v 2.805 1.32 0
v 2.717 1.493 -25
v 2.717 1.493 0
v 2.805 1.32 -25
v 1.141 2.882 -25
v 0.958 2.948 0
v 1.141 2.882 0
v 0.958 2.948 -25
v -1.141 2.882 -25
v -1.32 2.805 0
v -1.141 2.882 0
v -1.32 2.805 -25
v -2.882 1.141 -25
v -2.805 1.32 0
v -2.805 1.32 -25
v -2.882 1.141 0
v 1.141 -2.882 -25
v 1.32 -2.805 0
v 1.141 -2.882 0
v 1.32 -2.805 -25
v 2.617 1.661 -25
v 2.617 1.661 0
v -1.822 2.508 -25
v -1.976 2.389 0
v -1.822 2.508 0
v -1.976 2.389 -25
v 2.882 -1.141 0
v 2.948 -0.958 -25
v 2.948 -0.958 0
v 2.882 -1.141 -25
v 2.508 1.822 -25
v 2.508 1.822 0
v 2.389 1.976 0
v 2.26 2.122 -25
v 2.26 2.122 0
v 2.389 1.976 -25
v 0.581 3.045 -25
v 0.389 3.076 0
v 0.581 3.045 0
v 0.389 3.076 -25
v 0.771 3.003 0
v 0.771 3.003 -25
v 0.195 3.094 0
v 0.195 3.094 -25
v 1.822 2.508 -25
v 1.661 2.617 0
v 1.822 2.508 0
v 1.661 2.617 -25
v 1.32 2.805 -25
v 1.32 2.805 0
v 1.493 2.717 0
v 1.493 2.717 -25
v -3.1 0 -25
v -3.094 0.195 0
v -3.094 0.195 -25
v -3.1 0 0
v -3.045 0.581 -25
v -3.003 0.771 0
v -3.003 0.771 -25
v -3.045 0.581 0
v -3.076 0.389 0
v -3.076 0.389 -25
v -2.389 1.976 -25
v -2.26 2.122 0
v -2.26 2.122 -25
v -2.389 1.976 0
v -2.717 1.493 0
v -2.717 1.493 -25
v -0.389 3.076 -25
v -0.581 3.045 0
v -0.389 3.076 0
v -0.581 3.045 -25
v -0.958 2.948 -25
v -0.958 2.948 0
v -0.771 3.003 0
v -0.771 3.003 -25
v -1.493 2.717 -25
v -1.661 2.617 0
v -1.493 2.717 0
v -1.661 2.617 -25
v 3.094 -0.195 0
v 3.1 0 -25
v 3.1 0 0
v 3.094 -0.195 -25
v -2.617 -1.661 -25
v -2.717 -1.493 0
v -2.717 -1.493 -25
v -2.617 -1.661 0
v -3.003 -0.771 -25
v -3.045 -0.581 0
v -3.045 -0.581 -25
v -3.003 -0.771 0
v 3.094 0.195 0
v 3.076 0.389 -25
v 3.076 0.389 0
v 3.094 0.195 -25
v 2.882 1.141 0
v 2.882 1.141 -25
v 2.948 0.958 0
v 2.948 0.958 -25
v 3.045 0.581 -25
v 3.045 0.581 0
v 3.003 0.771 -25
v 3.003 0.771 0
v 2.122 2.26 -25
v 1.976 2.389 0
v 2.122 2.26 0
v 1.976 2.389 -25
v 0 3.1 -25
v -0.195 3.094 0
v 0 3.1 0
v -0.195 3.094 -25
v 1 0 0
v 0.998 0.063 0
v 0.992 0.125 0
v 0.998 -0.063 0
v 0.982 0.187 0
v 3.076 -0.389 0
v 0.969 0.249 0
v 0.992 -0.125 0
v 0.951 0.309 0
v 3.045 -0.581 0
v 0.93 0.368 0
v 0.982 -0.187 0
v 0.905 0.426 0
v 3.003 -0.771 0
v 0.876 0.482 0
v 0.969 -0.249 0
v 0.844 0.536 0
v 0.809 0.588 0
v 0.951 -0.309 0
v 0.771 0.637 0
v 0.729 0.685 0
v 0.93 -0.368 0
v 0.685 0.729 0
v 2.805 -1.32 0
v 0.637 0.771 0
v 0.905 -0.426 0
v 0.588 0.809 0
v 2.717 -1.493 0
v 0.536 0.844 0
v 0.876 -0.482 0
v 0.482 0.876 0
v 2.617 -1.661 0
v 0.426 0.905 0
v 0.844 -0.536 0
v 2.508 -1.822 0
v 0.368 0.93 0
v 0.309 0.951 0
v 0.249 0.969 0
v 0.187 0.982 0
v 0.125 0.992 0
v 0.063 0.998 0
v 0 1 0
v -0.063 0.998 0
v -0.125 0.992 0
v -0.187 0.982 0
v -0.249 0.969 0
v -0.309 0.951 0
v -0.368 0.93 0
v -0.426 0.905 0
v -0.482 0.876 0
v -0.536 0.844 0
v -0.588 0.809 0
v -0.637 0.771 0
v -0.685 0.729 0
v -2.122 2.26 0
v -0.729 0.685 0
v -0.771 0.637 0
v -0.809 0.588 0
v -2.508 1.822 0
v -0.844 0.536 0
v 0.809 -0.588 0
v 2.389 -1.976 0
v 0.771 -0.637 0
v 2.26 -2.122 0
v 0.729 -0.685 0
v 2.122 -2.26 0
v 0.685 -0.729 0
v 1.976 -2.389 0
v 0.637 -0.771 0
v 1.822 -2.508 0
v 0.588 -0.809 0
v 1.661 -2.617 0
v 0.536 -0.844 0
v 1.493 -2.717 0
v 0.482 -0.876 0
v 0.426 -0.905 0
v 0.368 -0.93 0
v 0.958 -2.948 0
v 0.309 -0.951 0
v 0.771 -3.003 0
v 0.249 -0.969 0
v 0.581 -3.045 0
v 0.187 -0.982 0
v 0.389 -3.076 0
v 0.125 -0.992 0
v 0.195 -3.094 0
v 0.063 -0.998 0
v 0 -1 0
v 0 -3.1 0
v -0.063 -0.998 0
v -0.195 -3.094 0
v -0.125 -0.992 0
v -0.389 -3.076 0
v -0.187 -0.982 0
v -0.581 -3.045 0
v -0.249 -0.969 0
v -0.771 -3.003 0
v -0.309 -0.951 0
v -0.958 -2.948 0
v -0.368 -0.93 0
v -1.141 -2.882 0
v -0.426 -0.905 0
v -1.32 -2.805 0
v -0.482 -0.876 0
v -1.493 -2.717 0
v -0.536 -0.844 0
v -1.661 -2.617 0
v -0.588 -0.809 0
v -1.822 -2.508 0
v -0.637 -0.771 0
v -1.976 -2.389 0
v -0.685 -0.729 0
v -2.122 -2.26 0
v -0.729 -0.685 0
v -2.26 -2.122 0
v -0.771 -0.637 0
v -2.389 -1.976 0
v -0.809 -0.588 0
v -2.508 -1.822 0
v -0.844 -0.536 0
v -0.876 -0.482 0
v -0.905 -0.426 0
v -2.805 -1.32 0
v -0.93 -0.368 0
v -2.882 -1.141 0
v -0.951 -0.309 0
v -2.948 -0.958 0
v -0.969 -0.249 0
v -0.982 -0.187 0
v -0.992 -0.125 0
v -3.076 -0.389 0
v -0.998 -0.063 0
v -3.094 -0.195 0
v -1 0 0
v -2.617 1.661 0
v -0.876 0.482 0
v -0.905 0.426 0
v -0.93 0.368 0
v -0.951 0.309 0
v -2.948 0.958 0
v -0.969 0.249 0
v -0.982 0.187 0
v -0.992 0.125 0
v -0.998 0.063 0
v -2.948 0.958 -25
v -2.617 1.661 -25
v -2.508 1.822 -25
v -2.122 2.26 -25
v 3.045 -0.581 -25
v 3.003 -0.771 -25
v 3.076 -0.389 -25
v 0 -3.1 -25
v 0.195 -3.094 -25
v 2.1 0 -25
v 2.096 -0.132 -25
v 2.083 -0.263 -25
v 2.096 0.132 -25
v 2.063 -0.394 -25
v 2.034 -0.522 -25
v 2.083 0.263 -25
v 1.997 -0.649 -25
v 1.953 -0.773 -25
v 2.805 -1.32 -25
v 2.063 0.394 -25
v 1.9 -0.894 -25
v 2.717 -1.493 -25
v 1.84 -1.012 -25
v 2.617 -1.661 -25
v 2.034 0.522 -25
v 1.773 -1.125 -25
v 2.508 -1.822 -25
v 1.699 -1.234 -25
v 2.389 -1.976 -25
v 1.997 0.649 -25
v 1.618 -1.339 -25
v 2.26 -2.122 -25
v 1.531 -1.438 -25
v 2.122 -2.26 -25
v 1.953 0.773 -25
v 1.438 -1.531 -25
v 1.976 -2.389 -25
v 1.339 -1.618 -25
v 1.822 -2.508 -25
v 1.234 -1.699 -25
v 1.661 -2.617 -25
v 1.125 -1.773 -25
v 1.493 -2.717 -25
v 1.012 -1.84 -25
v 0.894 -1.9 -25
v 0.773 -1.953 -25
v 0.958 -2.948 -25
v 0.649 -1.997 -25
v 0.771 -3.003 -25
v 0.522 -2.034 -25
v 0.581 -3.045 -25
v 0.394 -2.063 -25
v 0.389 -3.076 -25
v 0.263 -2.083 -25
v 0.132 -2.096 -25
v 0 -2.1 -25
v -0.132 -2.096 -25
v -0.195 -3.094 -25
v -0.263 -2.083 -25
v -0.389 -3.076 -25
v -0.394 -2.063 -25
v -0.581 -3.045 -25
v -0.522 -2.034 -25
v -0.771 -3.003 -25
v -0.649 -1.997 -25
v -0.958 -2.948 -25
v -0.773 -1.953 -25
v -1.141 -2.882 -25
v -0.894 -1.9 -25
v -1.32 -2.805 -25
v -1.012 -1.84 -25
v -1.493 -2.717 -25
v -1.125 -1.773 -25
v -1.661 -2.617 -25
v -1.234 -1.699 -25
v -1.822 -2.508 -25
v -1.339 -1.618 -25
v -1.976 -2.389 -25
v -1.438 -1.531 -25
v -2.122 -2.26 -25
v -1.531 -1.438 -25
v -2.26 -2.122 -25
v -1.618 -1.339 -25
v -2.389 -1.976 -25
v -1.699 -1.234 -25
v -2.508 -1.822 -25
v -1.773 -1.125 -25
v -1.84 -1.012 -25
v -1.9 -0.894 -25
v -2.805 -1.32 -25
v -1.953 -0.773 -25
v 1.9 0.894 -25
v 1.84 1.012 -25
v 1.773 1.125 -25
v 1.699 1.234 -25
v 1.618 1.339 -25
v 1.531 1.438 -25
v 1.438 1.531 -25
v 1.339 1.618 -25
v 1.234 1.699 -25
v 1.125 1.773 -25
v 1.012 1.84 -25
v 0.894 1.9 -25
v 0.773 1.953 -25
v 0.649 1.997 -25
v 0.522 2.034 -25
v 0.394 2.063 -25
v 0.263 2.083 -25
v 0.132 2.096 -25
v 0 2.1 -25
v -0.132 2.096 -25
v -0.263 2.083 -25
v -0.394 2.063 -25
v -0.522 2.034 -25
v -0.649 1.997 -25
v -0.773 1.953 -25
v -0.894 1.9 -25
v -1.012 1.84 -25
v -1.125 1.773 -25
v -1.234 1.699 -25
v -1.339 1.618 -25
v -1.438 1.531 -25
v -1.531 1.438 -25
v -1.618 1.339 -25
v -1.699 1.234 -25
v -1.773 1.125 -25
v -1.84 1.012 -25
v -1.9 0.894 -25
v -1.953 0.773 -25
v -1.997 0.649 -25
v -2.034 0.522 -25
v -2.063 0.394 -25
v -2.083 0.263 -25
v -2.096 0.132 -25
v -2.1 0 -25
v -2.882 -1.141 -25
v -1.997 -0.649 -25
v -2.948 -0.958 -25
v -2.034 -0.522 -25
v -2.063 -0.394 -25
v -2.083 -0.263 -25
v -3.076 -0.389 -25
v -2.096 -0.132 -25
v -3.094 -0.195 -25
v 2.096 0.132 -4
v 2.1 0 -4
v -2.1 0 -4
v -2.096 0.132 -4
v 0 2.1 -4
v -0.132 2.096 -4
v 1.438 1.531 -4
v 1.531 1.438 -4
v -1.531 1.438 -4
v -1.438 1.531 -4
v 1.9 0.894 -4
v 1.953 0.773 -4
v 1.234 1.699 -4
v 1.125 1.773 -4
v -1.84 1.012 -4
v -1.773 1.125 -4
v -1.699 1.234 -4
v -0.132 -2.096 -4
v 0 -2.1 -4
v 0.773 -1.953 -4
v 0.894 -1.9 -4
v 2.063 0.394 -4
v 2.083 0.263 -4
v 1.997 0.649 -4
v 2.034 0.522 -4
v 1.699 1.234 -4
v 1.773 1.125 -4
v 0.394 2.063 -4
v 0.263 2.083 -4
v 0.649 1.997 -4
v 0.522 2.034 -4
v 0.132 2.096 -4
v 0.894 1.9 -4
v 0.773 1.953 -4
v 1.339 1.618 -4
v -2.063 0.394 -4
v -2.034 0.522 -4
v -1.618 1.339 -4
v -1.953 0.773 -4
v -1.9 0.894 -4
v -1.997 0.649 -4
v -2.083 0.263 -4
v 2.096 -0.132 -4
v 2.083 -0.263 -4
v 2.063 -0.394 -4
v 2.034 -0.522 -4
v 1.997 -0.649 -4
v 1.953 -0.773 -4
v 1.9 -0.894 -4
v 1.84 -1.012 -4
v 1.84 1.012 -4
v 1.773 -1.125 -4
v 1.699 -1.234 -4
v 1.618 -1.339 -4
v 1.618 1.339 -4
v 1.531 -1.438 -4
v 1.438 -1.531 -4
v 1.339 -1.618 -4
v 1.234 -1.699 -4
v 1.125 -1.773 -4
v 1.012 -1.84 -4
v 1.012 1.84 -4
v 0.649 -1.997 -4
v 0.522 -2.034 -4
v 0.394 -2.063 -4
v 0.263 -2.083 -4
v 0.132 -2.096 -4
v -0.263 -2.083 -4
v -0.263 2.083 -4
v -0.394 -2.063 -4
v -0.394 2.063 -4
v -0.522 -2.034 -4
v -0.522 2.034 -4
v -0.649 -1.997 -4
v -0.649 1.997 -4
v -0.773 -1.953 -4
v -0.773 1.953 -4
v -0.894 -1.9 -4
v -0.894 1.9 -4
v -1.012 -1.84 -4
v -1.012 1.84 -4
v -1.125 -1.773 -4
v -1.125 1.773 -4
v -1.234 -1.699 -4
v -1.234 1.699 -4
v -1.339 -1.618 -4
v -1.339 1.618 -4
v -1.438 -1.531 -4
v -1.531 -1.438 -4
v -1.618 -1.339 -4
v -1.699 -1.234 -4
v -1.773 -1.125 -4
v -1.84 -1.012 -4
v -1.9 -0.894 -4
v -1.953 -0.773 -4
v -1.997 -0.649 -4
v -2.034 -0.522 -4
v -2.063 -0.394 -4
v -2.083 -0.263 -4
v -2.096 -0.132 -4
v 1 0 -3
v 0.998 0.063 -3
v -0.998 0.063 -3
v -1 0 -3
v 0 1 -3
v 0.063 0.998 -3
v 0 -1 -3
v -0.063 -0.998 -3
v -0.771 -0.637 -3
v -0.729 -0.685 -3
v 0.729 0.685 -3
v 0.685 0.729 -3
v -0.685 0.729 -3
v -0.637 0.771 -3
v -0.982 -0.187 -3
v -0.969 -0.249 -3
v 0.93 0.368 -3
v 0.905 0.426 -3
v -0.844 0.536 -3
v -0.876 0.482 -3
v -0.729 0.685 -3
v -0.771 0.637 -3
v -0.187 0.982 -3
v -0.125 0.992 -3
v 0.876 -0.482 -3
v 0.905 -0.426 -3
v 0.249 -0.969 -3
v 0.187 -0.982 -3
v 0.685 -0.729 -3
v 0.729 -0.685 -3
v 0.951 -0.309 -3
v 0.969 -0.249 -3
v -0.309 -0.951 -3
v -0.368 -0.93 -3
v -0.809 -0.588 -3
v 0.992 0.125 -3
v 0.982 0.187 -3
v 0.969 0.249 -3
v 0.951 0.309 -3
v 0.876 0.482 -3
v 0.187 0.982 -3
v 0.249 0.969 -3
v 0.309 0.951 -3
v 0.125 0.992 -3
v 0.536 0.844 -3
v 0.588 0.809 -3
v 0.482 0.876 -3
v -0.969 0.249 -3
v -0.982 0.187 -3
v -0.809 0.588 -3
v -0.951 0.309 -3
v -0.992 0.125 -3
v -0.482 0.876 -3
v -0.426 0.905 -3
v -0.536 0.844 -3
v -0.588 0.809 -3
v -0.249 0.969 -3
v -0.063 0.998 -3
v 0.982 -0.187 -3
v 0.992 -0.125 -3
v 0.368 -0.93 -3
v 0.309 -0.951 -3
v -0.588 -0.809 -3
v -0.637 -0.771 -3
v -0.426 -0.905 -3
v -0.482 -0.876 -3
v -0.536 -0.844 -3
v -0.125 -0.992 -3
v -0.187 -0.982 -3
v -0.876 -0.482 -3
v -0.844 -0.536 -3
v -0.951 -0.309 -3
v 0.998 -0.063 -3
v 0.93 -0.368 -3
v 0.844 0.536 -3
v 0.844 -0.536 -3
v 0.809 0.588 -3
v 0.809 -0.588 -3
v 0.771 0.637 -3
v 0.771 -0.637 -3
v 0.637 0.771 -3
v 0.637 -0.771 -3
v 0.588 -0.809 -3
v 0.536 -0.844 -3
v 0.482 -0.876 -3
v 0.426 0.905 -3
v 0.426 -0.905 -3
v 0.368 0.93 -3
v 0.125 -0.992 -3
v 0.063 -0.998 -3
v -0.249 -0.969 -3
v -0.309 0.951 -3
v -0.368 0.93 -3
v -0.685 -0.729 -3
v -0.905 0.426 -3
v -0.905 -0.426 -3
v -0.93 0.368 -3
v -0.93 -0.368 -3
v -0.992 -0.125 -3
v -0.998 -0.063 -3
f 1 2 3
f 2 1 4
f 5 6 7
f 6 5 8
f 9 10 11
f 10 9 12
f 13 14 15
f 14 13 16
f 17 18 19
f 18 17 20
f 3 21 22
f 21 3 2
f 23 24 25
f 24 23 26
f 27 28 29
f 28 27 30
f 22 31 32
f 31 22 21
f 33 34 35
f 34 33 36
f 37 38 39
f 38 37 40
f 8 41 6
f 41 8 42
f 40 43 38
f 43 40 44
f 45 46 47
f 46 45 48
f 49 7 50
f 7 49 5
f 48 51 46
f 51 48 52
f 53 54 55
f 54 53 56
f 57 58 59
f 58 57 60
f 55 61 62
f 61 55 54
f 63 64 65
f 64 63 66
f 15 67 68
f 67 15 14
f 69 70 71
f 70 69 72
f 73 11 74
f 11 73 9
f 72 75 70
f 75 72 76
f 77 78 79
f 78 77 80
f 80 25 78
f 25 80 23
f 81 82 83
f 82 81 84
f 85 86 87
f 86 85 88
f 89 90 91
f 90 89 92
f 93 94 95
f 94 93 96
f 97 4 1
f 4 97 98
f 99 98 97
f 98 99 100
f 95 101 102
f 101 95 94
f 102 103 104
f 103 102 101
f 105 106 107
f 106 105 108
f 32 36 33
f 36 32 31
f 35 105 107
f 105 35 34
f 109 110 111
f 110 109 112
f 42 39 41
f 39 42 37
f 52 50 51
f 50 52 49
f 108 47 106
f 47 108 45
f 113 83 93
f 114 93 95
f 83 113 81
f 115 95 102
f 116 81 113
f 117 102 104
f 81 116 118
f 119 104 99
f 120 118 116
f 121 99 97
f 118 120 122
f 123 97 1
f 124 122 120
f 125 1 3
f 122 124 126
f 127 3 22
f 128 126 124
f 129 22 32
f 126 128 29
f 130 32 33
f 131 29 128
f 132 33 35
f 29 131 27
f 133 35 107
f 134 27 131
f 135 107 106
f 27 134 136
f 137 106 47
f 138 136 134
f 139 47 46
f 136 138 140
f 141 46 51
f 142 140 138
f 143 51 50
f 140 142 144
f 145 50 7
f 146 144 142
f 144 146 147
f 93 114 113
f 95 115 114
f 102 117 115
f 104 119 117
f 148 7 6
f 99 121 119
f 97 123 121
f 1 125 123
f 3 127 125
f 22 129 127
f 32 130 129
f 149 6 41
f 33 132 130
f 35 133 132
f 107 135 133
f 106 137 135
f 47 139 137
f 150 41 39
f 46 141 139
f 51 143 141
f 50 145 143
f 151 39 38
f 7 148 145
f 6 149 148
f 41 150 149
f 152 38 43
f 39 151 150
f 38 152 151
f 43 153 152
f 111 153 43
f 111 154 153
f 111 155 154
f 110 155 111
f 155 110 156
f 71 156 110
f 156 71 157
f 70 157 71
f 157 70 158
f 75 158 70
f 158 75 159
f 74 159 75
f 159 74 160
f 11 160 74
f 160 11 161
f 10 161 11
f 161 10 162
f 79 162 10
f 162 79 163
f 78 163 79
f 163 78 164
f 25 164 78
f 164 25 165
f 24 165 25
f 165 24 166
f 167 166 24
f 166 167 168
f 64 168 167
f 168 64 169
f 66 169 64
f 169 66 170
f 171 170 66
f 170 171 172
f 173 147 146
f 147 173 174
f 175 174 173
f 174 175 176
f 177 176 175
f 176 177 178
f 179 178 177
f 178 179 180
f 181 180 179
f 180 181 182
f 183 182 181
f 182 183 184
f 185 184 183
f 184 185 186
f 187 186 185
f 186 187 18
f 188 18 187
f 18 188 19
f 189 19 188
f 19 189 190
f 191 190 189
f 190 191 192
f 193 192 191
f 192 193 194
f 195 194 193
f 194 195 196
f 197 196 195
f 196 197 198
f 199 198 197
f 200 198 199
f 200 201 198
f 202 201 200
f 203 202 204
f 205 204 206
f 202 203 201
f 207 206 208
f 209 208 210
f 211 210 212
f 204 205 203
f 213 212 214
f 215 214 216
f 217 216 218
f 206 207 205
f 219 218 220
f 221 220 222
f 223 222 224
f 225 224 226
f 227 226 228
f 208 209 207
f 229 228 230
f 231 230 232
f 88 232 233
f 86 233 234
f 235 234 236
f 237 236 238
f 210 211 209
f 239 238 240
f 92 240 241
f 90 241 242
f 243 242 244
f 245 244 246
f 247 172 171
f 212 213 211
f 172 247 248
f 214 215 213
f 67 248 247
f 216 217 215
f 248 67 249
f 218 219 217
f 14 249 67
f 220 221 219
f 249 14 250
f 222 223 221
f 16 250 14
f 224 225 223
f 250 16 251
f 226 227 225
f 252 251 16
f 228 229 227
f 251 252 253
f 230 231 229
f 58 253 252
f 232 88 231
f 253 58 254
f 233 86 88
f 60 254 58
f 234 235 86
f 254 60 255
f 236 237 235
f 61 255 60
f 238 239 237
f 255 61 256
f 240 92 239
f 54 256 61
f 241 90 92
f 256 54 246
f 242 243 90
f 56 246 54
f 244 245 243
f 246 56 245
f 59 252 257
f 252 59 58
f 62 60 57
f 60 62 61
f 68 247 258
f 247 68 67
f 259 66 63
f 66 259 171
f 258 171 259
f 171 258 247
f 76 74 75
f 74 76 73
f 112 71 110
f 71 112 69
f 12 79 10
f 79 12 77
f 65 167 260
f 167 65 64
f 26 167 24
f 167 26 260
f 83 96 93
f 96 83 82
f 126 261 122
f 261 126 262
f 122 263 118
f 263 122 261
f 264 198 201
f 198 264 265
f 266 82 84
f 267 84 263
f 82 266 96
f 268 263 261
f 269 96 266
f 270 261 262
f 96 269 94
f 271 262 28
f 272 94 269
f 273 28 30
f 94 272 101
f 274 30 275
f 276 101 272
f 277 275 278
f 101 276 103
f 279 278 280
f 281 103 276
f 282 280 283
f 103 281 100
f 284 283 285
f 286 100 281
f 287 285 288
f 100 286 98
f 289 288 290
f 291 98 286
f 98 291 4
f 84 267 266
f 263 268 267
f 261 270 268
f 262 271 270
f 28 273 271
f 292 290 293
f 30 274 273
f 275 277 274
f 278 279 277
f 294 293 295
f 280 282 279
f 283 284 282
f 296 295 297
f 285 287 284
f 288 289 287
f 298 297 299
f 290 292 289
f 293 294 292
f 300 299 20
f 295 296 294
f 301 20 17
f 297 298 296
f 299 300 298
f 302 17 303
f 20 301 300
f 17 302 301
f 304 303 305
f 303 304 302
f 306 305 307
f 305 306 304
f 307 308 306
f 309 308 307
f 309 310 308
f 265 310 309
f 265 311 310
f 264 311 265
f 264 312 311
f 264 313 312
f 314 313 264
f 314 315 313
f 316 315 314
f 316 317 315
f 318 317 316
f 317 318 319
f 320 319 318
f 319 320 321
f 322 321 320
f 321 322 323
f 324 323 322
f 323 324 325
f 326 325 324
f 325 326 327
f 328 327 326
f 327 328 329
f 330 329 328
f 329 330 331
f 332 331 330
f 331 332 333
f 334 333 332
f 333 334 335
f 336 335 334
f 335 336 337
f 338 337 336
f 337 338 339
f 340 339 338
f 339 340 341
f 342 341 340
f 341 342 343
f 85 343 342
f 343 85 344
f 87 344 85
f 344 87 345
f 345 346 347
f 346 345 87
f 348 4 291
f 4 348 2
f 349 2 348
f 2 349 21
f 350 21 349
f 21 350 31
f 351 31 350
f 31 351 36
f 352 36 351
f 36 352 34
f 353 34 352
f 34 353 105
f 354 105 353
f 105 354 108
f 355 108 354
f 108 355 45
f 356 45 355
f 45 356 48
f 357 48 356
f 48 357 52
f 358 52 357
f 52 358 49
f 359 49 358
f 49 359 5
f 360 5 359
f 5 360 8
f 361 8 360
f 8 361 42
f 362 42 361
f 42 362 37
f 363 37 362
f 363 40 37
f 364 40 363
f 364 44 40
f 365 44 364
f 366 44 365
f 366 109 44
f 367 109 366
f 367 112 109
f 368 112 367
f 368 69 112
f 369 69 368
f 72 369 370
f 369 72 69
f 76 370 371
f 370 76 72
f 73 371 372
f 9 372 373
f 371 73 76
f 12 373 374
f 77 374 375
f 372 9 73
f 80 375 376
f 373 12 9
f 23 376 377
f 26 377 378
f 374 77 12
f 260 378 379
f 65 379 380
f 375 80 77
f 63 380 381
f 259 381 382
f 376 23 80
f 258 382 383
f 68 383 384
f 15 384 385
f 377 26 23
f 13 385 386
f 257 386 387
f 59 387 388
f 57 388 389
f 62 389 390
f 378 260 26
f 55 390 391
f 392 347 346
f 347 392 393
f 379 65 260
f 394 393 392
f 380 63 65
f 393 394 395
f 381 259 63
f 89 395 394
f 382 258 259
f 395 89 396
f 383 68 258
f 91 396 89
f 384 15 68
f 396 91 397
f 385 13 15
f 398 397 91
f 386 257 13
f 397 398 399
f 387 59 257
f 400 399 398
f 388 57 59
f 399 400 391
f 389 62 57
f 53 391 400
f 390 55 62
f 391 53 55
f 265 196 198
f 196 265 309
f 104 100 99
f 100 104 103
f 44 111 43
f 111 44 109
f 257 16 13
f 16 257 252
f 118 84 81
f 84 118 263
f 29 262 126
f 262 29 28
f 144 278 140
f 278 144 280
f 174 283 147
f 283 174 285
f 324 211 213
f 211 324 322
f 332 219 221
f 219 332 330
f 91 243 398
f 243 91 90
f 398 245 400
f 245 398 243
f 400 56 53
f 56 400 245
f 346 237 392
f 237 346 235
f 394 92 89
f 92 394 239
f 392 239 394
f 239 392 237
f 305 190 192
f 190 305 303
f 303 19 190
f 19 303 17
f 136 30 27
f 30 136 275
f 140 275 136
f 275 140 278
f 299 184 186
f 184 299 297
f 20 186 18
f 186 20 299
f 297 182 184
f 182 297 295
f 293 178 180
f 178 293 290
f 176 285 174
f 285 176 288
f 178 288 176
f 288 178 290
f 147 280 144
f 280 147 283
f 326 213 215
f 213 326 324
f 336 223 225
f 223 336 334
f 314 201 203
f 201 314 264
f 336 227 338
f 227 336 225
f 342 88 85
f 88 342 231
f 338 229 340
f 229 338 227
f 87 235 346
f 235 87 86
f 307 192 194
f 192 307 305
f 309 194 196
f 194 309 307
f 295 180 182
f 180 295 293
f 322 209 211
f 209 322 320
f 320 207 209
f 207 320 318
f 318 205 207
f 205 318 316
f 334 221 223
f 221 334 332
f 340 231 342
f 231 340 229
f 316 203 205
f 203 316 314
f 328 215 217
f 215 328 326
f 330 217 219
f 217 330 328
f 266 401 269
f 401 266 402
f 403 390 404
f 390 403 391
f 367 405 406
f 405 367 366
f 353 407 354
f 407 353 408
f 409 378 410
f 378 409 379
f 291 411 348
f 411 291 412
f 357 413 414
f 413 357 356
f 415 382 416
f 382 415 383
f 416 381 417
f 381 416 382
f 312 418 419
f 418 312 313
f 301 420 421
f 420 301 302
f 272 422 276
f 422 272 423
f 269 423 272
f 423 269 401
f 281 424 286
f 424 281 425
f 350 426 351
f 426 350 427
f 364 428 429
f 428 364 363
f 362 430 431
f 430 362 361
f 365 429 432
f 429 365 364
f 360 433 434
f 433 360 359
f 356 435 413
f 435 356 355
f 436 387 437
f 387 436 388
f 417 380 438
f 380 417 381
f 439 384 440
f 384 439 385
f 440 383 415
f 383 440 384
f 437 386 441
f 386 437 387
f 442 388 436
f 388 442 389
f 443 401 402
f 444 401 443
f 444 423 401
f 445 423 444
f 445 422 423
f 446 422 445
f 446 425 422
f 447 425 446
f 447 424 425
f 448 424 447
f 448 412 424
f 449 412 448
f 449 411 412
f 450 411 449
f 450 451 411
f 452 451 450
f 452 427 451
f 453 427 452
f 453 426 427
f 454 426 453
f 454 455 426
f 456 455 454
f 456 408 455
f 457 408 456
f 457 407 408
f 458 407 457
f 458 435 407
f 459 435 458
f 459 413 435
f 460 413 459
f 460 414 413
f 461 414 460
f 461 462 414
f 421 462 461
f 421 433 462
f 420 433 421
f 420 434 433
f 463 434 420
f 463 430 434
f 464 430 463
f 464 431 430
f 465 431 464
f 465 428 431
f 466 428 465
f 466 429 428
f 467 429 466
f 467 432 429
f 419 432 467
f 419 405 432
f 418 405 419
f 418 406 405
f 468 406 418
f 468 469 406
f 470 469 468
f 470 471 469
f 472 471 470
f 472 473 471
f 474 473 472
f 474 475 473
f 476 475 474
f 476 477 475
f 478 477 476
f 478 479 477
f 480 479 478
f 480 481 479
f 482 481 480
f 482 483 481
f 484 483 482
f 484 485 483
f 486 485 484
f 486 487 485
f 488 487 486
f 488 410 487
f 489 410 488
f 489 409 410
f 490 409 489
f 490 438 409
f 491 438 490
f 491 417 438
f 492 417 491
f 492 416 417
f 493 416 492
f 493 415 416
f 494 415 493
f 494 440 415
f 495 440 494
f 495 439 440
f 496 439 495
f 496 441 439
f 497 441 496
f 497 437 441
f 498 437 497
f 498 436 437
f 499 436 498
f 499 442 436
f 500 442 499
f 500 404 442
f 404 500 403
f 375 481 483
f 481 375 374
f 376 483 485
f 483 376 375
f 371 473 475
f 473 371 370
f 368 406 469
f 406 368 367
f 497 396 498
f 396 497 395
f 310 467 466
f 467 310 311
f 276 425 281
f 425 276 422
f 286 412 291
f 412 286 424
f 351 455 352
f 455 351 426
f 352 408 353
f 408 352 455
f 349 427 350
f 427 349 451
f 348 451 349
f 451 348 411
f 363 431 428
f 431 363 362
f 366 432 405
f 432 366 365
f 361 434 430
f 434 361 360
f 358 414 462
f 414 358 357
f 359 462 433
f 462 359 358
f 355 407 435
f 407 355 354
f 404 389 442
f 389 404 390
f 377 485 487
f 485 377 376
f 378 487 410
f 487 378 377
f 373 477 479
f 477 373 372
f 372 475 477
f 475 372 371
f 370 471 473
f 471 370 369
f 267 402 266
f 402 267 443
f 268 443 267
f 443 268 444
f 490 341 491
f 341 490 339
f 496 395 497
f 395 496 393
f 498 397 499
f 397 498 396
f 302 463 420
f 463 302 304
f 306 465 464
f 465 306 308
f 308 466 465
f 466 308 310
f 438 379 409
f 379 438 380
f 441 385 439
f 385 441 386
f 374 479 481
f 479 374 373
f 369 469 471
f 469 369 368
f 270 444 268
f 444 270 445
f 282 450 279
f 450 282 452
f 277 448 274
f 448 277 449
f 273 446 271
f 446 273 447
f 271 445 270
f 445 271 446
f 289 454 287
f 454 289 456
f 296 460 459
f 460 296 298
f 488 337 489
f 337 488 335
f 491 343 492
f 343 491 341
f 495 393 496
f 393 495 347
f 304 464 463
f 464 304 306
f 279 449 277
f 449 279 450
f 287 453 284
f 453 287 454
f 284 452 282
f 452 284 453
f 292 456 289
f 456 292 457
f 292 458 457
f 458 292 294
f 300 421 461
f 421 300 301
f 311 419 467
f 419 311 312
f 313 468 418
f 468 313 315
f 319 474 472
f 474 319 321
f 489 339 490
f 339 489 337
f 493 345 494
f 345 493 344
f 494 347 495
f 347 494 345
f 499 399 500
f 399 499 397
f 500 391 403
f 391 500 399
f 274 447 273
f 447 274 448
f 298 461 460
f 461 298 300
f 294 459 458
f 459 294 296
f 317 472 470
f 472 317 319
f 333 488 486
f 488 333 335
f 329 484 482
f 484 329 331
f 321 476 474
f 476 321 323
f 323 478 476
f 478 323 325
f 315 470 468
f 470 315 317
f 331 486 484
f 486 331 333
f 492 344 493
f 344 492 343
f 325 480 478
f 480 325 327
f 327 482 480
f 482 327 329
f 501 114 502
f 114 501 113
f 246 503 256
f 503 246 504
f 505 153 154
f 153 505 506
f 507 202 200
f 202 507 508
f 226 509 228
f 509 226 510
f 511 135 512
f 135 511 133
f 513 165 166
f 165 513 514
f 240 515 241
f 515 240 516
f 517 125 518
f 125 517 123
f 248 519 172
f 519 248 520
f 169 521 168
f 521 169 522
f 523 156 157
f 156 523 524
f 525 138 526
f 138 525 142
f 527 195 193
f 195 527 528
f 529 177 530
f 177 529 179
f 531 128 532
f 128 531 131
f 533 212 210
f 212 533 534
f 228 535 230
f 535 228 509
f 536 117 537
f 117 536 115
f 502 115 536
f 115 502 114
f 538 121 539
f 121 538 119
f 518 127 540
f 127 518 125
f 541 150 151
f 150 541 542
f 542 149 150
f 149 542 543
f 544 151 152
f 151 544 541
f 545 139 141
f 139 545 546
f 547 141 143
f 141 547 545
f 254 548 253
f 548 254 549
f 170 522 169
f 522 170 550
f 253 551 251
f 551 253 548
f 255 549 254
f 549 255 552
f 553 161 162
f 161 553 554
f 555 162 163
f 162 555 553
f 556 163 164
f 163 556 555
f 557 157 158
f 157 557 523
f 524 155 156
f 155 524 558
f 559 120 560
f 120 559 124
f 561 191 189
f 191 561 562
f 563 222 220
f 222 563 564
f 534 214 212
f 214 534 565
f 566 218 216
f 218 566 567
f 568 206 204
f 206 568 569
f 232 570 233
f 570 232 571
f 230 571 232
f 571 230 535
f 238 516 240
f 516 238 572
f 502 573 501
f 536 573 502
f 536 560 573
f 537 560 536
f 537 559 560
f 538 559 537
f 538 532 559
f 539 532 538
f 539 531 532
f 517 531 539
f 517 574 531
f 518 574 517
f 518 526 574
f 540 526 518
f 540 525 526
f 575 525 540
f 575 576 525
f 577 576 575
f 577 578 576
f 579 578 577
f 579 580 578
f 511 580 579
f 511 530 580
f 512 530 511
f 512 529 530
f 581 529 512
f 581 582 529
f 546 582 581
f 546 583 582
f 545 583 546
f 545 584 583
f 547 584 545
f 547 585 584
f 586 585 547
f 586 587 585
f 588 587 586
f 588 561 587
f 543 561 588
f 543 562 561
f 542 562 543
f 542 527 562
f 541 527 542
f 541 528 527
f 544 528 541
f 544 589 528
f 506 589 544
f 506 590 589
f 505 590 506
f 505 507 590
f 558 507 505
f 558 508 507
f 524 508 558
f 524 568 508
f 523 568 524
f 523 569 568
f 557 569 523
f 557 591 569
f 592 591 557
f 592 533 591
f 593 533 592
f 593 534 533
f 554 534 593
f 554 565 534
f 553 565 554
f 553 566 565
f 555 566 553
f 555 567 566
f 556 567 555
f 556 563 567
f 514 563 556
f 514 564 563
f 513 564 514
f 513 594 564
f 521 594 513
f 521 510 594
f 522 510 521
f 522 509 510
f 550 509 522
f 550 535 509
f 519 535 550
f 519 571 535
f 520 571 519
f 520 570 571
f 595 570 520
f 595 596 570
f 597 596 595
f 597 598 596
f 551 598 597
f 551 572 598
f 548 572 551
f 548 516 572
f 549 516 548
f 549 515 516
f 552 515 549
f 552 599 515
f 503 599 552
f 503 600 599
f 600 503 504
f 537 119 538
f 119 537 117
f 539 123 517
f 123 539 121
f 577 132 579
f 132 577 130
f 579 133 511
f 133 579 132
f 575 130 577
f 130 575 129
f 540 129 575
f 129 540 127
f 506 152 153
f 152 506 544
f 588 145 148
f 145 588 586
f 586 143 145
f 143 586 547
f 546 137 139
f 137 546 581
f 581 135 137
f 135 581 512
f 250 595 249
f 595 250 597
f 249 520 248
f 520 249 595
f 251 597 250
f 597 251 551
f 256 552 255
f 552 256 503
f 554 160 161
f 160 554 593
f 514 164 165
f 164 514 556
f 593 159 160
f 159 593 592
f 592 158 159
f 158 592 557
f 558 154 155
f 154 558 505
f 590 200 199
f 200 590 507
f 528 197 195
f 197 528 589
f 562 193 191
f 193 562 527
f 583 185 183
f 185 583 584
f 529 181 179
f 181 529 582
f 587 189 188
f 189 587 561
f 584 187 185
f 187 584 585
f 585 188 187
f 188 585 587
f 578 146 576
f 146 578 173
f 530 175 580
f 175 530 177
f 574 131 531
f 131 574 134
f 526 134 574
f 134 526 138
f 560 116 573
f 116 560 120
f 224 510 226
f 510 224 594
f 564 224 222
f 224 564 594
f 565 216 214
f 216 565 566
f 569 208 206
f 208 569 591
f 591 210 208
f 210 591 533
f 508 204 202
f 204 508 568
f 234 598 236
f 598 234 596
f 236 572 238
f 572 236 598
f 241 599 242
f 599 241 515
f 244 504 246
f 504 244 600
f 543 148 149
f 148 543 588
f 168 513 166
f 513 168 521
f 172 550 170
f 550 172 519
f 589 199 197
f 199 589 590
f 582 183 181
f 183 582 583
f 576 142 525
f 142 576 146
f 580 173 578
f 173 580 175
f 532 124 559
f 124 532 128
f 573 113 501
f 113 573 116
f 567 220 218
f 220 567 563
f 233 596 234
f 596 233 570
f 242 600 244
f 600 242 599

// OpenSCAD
// file: bottom_pin.scad
$fn=100;

module pin(diameter=6.2, height=10, cap_depth=1)
{
    difference(){
        cylinder(d=diameter,h=height);
        cylinder(d=diameter-2,h=height-cap_depth);
    }
}

pin();
// main file
$fn=100;

use <bottom_pin.scad>

difference(){
    translate([0,0,-25])pin(height=25, cap_depth=4);
    cylinder(d=2, h=6, center=true);
}
